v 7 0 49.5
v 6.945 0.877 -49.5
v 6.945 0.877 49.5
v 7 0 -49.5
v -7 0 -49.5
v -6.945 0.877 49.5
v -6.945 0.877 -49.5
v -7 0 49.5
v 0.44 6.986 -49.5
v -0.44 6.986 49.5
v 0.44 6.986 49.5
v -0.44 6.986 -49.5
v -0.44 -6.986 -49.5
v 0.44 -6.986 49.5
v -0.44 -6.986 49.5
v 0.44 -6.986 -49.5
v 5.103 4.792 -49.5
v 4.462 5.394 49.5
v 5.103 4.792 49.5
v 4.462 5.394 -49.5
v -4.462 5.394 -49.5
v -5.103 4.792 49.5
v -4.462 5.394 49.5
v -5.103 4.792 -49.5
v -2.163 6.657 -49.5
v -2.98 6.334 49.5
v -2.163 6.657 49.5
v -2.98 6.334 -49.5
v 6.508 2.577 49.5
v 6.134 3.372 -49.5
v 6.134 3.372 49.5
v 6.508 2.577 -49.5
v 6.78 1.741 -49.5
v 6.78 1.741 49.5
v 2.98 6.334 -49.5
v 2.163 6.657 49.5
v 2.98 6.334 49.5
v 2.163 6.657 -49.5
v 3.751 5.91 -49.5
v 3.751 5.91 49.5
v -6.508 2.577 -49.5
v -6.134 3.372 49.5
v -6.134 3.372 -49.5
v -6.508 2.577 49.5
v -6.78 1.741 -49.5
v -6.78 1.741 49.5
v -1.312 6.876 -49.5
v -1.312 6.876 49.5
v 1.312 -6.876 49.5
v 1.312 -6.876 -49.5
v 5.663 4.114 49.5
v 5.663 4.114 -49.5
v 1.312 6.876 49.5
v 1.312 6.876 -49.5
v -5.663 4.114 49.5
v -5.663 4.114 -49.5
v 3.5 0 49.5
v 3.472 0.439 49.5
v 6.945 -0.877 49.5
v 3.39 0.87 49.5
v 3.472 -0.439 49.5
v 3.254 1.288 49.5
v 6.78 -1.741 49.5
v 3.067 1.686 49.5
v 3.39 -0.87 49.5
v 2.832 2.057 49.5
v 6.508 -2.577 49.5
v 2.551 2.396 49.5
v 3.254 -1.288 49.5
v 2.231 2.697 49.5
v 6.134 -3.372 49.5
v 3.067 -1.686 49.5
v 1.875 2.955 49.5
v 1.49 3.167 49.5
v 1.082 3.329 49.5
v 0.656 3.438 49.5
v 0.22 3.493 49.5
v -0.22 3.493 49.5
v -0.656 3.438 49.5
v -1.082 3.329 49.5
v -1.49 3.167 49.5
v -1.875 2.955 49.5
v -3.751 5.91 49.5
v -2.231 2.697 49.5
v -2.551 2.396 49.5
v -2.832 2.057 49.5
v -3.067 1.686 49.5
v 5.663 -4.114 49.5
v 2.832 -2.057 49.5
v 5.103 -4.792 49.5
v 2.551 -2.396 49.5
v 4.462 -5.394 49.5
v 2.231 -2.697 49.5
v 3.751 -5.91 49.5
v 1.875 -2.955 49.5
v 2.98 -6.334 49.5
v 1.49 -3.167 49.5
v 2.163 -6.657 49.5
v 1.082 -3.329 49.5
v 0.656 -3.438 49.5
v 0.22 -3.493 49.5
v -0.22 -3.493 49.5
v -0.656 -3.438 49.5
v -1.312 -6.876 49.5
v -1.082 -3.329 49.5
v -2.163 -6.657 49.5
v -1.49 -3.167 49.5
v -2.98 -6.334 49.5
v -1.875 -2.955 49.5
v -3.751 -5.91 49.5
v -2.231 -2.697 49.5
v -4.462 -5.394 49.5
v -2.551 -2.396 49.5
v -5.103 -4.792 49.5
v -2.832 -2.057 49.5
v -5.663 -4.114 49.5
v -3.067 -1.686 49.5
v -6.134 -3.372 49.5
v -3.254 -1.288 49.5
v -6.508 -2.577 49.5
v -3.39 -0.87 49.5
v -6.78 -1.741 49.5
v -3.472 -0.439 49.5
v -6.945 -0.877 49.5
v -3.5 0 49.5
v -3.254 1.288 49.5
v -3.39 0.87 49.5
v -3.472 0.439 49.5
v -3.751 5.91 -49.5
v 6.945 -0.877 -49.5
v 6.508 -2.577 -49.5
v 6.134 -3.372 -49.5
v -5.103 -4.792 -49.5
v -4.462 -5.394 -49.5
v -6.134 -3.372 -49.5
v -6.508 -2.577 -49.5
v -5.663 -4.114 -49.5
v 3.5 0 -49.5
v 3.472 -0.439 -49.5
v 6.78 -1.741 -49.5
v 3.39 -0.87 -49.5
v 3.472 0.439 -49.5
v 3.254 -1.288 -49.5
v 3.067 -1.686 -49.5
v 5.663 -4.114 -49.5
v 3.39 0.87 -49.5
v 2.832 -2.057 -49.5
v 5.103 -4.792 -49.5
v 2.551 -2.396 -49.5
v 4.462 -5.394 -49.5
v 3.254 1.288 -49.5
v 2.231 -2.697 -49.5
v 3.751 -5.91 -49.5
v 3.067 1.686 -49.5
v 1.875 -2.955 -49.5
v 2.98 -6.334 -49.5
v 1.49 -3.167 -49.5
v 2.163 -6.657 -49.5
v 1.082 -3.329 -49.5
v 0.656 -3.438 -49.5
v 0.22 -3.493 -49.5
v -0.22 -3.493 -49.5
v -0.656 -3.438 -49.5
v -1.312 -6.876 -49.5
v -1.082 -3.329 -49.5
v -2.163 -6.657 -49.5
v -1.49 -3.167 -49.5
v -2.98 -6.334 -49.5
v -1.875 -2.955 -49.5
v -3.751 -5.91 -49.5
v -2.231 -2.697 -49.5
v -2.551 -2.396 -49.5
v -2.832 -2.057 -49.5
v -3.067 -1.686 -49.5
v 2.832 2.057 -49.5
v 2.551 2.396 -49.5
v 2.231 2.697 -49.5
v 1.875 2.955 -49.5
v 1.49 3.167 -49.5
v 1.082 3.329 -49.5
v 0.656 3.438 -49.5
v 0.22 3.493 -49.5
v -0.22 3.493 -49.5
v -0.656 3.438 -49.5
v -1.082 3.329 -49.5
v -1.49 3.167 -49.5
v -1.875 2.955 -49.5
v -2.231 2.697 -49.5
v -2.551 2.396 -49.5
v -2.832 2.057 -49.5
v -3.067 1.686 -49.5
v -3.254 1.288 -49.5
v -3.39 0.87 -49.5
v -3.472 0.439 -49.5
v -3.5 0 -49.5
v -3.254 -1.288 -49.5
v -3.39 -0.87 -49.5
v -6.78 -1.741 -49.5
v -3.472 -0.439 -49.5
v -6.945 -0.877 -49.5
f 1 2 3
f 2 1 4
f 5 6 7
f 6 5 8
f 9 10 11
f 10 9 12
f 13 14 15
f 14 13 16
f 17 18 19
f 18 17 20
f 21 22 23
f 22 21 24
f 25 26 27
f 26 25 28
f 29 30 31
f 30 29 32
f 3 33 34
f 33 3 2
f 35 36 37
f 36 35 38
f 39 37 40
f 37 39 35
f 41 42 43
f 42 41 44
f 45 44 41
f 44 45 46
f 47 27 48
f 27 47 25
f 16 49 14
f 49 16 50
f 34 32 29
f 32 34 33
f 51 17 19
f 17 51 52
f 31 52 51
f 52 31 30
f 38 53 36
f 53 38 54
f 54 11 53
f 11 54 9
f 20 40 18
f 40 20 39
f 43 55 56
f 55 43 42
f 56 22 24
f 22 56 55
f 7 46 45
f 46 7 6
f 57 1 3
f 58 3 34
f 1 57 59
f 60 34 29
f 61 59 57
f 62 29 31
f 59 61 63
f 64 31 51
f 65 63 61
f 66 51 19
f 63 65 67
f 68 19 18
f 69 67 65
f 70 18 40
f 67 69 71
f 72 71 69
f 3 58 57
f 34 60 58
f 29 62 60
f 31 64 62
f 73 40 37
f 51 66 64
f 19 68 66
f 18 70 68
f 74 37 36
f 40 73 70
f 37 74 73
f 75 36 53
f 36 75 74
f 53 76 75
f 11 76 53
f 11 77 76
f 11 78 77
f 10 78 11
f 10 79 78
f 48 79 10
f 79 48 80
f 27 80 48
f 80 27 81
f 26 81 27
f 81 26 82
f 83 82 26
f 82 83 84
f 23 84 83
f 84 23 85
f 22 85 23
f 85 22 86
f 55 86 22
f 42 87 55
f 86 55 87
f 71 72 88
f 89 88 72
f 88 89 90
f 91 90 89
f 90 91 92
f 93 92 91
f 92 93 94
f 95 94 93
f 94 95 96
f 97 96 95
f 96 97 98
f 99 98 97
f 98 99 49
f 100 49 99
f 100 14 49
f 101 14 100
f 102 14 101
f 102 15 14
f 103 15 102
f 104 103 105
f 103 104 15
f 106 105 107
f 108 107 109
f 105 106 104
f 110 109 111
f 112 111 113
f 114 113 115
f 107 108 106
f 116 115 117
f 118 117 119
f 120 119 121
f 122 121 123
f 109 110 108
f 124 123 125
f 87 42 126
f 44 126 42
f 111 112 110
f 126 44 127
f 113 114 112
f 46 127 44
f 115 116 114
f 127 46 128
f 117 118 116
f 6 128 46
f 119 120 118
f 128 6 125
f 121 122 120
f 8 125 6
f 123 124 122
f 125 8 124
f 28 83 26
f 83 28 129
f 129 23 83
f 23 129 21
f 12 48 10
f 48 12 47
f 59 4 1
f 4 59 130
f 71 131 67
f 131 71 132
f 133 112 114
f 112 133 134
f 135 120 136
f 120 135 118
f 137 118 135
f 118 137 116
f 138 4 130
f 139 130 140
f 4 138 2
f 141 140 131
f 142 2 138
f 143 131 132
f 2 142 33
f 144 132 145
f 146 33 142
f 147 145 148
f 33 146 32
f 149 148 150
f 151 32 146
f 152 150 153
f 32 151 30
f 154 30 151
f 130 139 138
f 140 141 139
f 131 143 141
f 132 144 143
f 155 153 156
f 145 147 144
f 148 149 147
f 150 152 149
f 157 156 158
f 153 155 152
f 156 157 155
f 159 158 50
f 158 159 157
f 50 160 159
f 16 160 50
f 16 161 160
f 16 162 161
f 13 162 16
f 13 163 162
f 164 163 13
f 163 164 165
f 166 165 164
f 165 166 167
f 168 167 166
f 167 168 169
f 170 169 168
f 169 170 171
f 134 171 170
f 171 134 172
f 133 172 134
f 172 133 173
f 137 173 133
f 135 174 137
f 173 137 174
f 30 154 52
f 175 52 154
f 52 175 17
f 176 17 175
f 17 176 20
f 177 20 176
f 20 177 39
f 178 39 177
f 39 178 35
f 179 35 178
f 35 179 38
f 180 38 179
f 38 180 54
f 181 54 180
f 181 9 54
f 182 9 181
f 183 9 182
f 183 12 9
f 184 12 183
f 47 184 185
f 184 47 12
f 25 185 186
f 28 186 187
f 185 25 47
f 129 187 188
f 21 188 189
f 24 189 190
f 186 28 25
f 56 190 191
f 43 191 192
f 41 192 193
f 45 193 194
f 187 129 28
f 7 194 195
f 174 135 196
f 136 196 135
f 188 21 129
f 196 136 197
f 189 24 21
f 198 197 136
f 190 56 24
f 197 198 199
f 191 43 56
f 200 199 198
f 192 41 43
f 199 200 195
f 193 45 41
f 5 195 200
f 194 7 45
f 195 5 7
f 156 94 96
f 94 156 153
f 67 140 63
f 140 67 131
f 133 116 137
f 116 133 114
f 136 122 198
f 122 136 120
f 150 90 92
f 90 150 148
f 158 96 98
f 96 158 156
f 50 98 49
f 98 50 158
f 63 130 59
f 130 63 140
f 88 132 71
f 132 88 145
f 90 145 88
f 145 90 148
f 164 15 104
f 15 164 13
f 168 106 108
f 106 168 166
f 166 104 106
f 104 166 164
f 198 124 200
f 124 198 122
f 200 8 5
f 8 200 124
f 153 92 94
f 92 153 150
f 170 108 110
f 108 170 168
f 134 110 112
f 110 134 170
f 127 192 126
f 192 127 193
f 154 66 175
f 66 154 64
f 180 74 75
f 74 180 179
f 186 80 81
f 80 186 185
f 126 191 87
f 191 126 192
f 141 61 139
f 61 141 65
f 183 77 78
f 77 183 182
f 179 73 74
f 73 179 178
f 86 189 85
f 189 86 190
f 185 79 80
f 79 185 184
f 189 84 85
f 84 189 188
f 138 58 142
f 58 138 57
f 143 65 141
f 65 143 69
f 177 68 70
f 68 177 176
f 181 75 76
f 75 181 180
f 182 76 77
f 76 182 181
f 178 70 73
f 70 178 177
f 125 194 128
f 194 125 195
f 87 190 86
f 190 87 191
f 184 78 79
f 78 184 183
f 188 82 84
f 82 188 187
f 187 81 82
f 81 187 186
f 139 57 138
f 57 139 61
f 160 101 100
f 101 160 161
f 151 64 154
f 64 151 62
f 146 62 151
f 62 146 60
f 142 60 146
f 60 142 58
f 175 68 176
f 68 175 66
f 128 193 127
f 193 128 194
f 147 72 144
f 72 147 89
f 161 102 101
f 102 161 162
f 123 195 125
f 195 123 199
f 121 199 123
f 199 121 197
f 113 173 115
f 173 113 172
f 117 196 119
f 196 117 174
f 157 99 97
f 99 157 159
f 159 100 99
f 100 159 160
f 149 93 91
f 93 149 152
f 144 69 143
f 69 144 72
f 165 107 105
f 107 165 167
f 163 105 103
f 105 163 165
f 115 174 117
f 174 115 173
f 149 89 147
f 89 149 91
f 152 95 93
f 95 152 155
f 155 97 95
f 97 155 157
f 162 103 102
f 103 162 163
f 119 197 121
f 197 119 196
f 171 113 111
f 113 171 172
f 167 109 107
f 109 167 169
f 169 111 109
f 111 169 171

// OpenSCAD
$fn = 50;


difference() {
	union() {
		translate(v = [0, 0, -49.5000000000]) {
			cylinder(h = 99, r = 7.0000000000);
		}
	}
	union() {
		translate(v = [0, 0, -100.0000000000]) {
			cylinder(h = 200, r = 3.5000000000);
		}
	}
}
